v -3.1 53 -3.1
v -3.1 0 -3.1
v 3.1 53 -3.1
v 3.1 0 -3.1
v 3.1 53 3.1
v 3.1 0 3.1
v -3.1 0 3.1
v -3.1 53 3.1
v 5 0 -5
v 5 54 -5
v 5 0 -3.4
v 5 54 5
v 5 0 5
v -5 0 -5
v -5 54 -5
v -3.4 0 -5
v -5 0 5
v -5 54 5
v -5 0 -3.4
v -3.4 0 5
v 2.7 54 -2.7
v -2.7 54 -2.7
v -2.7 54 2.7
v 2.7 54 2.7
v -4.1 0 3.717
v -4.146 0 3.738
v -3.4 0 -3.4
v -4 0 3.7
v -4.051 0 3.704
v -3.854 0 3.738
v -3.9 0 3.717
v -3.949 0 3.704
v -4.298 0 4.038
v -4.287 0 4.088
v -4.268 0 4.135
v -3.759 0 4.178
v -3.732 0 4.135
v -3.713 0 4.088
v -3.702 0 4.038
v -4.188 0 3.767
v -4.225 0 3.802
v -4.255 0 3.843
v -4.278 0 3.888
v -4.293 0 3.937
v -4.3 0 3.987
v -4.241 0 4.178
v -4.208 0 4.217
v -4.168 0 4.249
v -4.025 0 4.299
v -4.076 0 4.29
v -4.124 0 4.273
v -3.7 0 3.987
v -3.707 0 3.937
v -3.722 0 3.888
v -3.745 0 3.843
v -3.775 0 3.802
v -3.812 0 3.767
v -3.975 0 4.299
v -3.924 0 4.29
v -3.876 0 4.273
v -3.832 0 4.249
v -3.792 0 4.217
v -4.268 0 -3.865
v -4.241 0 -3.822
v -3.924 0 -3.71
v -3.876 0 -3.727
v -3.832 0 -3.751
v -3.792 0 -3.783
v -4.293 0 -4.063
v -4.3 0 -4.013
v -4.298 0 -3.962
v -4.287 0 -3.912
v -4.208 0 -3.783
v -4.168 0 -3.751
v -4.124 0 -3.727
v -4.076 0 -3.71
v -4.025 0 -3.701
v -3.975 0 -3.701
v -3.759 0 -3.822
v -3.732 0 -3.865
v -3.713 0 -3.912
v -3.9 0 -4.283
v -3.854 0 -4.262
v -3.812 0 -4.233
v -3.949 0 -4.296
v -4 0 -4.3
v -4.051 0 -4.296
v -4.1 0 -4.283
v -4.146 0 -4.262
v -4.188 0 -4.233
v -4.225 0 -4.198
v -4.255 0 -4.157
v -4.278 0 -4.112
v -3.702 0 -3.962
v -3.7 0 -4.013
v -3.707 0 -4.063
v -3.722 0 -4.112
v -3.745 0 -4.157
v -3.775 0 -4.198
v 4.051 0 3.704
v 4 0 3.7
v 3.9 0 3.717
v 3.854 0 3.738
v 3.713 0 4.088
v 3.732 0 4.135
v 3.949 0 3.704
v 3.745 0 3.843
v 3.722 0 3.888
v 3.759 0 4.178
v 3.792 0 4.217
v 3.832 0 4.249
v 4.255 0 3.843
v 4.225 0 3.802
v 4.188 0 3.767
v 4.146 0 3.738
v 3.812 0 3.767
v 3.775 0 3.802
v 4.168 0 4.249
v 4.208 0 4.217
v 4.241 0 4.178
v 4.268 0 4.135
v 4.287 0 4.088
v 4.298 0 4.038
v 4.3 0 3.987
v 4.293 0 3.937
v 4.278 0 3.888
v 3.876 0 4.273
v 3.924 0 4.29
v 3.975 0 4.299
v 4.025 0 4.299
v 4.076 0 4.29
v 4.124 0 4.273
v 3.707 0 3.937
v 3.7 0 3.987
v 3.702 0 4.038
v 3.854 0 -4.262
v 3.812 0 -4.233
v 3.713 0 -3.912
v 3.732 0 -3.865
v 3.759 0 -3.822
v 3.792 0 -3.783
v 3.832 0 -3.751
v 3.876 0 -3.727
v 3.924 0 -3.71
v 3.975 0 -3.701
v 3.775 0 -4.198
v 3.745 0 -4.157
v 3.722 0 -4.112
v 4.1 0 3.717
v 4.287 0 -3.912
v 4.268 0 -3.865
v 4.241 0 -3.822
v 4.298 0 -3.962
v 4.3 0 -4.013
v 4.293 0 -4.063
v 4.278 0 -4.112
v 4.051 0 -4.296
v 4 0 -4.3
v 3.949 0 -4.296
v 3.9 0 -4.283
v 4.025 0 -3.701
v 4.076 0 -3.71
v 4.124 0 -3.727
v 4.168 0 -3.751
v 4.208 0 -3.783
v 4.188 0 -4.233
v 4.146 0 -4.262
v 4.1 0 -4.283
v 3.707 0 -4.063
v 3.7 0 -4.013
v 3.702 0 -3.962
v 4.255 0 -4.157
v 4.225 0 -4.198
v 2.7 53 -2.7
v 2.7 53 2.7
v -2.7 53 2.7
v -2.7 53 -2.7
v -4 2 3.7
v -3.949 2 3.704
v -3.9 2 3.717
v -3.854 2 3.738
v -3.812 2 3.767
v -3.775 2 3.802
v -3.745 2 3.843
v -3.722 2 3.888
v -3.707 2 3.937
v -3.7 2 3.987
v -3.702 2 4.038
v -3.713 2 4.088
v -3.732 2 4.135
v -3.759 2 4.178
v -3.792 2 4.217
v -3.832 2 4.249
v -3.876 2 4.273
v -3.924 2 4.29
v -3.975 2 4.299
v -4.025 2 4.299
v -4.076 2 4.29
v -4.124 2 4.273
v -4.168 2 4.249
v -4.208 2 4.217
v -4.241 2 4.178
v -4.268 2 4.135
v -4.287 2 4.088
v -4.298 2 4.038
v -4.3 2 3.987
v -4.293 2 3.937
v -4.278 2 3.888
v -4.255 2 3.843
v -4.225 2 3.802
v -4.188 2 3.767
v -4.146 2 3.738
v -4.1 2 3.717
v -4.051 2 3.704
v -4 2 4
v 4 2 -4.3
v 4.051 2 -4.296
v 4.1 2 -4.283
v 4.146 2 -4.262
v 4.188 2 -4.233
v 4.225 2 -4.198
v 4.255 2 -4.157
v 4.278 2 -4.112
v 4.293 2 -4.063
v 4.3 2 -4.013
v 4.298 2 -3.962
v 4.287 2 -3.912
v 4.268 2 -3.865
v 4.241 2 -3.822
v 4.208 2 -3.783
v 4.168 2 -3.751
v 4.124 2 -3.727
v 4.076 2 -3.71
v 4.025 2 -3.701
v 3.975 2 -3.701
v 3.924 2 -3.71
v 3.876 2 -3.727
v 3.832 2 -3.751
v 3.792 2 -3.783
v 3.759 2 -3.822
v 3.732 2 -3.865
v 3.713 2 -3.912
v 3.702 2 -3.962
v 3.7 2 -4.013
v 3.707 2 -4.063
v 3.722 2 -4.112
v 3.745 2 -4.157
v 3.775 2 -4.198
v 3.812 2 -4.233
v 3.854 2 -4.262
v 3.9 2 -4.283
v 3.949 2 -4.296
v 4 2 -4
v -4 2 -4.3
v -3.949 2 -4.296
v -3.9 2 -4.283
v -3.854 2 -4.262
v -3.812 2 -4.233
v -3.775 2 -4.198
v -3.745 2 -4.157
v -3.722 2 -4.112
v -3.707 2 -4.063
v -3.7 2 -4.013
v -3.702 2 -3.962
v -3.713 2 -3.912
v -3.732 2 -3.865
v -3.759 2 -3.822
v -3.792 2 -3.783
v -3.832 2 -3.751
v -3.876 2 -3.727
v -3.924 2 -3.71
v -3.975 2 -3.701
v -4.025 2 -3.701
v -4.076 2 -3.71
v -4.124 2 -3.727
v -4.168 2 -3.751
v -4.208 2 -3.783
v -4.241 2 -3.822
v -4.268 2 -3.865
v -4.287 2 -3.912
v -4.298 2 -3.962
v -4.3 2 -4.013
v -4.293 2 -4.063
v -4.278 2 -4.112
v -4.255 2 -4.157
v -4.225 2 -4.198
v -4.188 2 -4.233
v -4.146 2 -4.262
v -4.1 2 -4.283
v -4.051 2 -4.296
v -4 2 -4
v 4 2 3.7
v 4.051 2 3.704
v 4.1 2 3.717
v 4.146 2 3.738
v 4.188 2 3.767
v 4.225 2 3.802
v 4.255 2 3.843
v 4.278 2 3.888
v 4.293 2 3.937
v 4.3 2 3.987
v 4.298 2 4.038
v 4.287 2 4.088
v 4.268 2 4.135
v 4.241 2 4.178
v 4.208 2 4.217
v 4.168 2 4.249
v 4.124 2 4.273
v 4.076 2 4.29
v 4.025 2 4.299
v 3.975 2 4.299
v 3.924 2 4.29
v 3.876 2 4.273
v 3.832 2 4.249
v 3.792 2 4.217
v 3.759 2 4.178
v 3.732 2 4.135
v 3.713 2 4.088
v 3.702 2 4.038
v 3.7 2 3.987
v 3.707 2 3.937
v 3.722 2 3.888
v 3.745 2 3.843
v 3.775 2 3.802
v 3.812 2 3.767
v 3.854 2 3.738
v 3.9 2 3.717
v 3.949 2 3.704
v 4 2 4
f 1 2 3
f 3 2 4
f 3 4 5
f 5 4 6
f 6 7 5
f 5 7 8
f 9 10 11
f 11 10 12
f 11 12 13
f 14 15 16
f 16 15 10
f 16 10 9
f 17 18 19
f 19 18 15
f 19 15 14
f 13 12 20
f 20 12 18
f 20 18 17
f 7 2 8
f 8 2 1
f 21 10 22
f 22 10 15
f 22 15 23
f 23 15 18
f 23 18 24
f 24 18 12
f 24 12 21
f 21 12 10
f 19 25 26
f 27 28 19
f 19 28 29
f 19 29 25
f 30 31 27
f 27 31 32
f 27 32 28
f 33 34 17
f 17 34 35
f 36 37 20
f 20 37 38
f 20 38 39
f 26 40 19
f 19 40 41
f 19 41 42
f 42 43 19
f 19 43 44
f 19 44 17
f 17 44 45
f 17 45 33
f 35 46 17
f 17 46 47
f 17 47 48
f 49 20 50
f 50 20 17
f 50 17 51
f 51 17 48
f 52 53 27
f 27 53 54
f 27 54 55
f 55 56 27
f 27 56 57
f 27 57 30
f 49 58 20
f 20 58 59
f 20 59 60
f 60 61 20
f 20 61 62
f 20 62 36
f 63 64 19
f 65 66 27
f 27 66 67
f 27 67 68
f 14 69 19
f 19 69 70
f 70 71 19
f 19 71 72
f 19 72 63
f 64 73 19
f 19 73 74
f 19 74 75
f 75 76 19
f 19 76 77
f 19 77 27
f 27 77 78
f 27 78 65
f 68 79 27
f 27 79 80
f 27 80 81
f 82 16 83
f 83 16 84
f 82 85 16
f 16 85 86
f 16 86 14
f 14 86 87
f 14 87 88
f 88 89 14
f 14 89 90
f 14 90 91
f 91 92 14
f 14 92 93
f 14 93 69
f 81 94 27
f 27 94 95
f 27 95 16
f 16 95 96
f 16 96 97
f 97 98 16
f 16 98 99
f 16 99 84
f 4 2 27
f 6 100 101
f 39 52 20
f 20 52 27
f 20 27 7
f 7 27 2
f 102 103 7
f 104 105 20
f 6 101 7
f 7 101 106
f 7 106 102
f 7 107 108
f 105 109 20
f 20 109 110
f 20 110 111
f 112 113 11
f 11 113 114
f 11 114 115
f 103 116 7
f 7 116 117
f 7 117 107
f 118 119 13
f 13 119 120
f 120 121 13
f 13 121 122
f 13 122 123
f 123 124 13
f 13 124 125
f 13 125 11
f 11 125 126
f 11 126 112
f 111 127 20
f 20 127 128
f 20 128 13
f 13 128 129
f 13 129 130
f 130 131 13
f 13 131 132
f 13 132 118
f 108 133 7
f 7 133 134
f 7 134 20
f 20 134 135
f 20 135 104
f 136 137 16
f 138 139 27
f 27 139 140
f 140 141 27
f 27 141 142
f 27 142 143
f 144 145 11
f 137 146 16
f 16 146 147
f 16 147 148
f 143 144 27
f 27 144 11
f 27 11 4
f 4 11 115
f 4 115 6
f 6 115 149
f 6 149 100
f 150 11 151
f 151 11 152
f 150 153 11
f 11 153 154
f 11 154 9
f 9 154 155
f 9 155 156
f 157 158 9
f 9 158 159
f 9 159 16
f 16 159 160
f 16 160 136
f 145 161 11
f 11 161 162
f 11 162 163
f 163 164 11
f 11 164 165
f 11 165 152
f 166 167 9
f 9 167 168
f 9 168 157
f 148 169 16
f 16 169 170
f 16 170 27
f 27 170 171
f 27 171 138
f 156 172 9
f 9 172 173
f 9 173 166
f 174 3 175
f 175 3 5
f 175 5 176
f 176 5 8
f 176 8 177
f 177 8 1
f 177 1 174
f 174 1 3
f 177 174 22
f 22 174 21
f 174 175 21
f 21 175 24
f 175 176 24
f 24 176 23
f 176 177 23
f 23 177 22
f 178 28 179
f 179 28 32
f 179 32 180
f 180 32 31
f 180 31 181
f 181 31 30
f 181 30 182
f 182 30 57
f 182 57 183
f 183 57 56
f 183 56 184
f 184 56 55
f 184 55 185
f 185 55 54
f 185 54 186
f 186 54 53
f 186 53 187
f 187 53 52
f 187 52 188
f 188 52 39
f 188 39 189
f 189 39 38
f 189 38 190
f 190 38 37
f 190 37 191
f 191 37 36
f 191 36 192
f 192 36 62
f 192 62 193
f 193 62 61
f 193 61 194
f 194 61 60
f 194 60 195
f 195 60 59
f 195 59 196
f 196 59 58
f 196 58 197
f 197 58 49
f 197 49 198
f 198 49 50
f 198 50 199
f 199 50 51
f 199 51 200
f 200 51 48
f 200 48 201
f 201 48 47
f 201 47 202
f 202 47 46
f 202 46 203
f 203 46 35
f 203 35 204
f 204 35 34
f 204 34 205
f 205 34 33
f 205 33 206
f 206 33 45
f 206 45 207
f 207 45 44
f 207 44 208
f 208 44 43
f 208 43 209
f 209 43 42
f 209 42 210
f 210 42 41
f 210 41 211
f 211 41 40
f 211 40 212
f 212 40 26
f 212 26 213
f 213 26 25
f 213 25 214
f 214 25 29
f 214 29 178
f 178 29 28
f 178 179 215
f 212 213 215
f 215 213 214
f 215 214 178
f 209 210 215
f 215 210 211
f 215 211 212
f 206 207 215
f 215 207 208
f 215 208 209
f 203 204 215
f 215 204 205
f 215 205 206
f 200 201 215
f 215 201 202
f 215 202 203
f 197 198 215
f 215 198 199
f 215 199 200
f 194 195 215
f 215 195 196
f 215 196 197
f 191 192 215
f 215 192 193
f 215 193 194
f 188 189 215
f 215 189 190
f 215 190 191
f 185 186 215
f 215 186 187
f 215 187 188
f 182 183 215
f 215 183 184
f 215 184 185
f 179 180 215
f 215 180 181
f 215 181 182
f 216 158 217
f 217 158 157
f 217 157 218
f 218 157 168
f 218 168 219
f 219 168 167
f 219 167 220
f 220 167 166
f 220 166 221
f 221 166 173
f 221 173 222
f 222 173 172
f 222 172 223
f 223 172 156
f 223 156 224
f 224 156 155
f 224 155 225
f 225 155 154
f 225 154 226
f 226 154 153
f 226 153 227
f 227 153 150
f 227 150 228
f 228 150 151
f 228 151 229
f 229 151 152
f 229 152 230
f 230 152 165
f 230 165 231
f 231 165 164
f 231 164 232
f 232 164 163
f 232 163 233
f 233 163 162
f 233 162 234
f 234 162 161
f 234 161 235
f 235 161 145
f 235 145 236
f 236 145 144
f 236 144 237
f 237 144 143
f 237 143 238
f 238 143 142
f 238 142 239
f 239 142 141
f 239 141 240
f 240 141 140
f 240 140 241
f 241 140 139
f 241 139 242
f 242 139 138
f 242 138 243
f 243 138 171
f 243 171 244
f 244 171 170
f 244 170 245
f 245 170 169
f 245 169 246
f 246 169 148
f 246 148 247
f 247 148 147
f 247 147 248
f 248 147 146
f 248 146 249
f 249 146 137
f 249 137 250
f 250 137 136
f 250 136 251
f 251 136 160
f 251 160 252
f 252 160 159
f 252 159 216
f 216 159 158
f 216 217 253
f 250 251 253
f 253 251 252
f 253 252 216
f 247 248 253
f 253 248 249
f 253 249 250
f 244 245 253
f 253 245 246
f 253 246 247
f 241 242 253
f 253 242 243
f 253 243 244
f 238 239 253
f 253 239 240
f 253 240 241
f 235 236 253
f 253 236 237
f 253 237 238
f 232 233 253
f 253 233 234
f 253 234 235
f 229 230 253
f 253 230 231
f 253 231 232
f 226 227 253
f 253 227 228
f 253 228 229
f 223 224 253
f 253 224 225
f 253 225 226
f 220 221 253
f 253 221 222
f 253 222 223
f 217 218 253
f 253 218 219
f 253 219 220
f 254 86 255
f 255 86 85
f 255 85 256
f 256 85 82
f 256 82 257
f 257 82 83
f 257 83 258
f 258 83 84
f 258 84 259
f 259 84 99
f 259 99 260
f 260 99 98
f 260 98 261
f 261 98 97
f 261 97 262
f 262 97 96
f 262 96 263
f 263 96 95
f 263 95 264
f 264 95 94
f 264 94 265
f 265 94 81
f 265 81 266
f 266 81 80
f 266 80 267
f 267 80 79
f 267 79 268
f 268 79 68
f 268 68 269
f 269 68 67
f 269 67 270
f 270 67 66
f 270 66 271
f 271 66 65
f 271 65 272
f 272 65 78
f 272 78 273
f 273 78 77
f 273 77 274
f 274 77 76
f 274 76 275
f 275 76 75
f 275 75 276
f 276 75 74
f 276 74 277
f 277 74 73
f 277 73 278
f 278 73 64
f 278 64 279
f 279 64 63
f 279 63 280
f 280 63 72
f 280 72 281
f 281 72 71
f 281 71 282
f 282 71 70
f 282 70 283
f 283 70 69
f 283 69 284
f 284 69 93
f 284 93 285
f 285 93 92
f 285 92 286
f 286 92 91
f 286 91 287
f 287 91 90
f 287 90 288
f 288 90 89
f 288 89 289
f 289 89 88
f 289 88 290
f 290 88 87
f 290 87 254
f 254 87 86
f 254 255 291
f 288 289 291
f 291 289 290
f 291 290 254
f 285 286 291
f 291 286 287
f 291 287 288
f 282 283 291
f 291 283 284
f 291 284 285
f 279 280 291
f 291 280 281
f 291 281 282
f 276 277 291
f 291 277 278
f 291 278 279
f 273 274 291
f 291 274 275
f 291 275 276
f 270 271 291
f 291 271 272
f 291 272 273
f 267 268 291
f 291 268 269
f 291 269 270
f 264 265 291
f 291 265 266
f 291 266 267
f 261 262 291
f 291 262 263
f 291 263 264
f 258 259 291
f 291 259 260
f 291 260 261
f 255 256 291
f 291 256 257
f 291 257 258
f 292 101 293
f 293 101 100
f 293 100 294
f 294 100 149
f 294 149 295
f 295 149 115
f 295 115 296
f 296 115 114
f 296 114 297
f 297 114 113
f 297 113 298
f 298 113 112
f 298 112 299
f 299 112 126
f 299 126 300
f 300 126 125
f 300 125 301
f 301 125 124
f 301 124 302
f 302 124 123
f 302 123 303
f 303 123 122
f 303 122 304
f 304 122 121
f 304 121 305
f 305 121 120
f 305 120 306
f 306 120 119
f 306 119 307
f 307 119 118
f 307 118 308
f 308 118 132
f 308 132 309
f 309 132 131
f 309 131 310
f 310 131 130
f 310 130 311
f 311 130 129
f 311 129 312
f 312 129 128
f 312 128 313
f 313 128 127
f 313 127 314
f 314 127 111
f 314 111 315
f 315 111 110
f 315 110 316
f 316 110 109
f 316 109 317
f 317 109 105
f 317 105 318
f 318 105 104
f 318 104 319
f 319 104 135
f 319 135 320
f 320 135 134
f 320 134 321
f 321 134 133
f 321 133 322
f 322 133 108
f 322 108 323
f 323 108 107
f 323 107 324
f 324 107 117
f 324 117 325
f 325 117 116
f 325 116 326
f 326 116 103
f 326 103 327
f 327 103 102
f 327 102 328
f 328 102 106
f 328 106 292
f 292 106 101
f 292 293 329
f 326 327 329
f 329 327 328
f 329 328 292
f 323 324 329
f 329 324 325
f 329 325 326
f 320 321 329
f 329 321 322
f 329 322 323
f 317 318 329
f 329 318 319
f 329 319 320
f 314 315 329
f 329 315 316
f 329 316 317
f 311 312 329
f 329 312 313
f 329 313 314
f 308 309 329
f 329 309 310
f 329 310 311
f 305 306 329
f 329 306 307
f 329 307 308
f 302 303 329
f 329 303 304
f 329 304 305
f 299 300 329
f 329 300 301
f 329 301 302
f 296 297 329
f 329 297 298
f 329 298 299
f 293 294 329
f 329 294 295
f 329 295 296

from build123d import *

# Parameters (mm, degrees)
SKETCH_1_W          = 10
SKETCH_1_H          = 10
SKETCH_1_W_2        = 6.2
SKETCH_1_H_2        = 6.2
EXTRUDE_1_DEPTH     = 54
EXTRUDE_START       = 54
SKETCH_1_3_W        = 10
SKETCH_1_3_H        = 10
SKETCH_1_3_W_2      = 6.2
SKETCH_1_3_H_2      = 6.2
SKETCH_1_3_W_3      = 5.4
SKETCH_1_3_H_3      = 5.4
EXTRUDE_2_DEPTH     = 1
SKETCH_2_R          = 0.3
CUT_EXTRUDE_1_DEPTH = 2


with BuildPart() as part:
    # 草图1 → 凸台-拉伸1 (new body)
    with BuildSketch(Plane(origin=(0, 0, 0), x_dir=(1, 0, 0), z_dir=(0, 1, 0))):
        Rectangle(SKETCH_1_W, SKETCH_1_H)
        Rectangle(SKETCH_1_W_2, SKETCH_1_H_2, mode=Mode.SUBTRACT)
    extrude(amount=EXTRUDE_1_DEPTH)

    # 草图1<3> → 凸台-拉伸2 (add)
    # profile 1 of 2: a face of its own
    with BuildSketch(Plane(origin=(0, 0, 0), x_dir=(1, 0, 0), z_dir=(0, 1, 0)).offset(EXTRUDE_START)):
        Rectangle(SKETCH_1_3_W, SKETCH_1_3_H)
        Rectangle(SKETCH_1_3_W_2, SKETCH_1_3_H_2, mode=Mode.SUBTRACT)
    # profile 2 of 2: a face of its own
    with BuildSketch(Plane(origin=(0, 0, 0), x_dir=(1, 0, 0), z_dir=(0, 1, 0)).offset(EXTRUDE_START)):
        Rectangle(SKETCH_1_3_W_2, SKETCH_1_3_H_2)
        Rectangle(SKETCH_1_3_W_3, SKETCH_1_3_H_3, mode=Mode.SUBTRACT)
    extrude(amount=-EXTRUDE_2_DEPTH)

    # 草图2 → 切除-拉伸1 (cut)
    with BuildSketch(Plane.XZ):
        with Locations(Location((-4, 4, 0), (0, 0, 270))):
            Circle(SKETCH_2_R)
        with Locations(Location((4, -4, 0), (0, 0, 270))):
            Circle(SKETCH_2_R)
        with Locations(Location((4, 4, 0), (0, 0, 270))):
            Circle(SKETCH_2_R)
        with Locations(Location((-4, -4, 0), (0, 0, 270))):
            Circle(SKETCH_2_R)
    extrude(amount=-CUT_EXTRUDE_1_DEPTH, mode=Mode.SUBTRACT)


solid = part.part
